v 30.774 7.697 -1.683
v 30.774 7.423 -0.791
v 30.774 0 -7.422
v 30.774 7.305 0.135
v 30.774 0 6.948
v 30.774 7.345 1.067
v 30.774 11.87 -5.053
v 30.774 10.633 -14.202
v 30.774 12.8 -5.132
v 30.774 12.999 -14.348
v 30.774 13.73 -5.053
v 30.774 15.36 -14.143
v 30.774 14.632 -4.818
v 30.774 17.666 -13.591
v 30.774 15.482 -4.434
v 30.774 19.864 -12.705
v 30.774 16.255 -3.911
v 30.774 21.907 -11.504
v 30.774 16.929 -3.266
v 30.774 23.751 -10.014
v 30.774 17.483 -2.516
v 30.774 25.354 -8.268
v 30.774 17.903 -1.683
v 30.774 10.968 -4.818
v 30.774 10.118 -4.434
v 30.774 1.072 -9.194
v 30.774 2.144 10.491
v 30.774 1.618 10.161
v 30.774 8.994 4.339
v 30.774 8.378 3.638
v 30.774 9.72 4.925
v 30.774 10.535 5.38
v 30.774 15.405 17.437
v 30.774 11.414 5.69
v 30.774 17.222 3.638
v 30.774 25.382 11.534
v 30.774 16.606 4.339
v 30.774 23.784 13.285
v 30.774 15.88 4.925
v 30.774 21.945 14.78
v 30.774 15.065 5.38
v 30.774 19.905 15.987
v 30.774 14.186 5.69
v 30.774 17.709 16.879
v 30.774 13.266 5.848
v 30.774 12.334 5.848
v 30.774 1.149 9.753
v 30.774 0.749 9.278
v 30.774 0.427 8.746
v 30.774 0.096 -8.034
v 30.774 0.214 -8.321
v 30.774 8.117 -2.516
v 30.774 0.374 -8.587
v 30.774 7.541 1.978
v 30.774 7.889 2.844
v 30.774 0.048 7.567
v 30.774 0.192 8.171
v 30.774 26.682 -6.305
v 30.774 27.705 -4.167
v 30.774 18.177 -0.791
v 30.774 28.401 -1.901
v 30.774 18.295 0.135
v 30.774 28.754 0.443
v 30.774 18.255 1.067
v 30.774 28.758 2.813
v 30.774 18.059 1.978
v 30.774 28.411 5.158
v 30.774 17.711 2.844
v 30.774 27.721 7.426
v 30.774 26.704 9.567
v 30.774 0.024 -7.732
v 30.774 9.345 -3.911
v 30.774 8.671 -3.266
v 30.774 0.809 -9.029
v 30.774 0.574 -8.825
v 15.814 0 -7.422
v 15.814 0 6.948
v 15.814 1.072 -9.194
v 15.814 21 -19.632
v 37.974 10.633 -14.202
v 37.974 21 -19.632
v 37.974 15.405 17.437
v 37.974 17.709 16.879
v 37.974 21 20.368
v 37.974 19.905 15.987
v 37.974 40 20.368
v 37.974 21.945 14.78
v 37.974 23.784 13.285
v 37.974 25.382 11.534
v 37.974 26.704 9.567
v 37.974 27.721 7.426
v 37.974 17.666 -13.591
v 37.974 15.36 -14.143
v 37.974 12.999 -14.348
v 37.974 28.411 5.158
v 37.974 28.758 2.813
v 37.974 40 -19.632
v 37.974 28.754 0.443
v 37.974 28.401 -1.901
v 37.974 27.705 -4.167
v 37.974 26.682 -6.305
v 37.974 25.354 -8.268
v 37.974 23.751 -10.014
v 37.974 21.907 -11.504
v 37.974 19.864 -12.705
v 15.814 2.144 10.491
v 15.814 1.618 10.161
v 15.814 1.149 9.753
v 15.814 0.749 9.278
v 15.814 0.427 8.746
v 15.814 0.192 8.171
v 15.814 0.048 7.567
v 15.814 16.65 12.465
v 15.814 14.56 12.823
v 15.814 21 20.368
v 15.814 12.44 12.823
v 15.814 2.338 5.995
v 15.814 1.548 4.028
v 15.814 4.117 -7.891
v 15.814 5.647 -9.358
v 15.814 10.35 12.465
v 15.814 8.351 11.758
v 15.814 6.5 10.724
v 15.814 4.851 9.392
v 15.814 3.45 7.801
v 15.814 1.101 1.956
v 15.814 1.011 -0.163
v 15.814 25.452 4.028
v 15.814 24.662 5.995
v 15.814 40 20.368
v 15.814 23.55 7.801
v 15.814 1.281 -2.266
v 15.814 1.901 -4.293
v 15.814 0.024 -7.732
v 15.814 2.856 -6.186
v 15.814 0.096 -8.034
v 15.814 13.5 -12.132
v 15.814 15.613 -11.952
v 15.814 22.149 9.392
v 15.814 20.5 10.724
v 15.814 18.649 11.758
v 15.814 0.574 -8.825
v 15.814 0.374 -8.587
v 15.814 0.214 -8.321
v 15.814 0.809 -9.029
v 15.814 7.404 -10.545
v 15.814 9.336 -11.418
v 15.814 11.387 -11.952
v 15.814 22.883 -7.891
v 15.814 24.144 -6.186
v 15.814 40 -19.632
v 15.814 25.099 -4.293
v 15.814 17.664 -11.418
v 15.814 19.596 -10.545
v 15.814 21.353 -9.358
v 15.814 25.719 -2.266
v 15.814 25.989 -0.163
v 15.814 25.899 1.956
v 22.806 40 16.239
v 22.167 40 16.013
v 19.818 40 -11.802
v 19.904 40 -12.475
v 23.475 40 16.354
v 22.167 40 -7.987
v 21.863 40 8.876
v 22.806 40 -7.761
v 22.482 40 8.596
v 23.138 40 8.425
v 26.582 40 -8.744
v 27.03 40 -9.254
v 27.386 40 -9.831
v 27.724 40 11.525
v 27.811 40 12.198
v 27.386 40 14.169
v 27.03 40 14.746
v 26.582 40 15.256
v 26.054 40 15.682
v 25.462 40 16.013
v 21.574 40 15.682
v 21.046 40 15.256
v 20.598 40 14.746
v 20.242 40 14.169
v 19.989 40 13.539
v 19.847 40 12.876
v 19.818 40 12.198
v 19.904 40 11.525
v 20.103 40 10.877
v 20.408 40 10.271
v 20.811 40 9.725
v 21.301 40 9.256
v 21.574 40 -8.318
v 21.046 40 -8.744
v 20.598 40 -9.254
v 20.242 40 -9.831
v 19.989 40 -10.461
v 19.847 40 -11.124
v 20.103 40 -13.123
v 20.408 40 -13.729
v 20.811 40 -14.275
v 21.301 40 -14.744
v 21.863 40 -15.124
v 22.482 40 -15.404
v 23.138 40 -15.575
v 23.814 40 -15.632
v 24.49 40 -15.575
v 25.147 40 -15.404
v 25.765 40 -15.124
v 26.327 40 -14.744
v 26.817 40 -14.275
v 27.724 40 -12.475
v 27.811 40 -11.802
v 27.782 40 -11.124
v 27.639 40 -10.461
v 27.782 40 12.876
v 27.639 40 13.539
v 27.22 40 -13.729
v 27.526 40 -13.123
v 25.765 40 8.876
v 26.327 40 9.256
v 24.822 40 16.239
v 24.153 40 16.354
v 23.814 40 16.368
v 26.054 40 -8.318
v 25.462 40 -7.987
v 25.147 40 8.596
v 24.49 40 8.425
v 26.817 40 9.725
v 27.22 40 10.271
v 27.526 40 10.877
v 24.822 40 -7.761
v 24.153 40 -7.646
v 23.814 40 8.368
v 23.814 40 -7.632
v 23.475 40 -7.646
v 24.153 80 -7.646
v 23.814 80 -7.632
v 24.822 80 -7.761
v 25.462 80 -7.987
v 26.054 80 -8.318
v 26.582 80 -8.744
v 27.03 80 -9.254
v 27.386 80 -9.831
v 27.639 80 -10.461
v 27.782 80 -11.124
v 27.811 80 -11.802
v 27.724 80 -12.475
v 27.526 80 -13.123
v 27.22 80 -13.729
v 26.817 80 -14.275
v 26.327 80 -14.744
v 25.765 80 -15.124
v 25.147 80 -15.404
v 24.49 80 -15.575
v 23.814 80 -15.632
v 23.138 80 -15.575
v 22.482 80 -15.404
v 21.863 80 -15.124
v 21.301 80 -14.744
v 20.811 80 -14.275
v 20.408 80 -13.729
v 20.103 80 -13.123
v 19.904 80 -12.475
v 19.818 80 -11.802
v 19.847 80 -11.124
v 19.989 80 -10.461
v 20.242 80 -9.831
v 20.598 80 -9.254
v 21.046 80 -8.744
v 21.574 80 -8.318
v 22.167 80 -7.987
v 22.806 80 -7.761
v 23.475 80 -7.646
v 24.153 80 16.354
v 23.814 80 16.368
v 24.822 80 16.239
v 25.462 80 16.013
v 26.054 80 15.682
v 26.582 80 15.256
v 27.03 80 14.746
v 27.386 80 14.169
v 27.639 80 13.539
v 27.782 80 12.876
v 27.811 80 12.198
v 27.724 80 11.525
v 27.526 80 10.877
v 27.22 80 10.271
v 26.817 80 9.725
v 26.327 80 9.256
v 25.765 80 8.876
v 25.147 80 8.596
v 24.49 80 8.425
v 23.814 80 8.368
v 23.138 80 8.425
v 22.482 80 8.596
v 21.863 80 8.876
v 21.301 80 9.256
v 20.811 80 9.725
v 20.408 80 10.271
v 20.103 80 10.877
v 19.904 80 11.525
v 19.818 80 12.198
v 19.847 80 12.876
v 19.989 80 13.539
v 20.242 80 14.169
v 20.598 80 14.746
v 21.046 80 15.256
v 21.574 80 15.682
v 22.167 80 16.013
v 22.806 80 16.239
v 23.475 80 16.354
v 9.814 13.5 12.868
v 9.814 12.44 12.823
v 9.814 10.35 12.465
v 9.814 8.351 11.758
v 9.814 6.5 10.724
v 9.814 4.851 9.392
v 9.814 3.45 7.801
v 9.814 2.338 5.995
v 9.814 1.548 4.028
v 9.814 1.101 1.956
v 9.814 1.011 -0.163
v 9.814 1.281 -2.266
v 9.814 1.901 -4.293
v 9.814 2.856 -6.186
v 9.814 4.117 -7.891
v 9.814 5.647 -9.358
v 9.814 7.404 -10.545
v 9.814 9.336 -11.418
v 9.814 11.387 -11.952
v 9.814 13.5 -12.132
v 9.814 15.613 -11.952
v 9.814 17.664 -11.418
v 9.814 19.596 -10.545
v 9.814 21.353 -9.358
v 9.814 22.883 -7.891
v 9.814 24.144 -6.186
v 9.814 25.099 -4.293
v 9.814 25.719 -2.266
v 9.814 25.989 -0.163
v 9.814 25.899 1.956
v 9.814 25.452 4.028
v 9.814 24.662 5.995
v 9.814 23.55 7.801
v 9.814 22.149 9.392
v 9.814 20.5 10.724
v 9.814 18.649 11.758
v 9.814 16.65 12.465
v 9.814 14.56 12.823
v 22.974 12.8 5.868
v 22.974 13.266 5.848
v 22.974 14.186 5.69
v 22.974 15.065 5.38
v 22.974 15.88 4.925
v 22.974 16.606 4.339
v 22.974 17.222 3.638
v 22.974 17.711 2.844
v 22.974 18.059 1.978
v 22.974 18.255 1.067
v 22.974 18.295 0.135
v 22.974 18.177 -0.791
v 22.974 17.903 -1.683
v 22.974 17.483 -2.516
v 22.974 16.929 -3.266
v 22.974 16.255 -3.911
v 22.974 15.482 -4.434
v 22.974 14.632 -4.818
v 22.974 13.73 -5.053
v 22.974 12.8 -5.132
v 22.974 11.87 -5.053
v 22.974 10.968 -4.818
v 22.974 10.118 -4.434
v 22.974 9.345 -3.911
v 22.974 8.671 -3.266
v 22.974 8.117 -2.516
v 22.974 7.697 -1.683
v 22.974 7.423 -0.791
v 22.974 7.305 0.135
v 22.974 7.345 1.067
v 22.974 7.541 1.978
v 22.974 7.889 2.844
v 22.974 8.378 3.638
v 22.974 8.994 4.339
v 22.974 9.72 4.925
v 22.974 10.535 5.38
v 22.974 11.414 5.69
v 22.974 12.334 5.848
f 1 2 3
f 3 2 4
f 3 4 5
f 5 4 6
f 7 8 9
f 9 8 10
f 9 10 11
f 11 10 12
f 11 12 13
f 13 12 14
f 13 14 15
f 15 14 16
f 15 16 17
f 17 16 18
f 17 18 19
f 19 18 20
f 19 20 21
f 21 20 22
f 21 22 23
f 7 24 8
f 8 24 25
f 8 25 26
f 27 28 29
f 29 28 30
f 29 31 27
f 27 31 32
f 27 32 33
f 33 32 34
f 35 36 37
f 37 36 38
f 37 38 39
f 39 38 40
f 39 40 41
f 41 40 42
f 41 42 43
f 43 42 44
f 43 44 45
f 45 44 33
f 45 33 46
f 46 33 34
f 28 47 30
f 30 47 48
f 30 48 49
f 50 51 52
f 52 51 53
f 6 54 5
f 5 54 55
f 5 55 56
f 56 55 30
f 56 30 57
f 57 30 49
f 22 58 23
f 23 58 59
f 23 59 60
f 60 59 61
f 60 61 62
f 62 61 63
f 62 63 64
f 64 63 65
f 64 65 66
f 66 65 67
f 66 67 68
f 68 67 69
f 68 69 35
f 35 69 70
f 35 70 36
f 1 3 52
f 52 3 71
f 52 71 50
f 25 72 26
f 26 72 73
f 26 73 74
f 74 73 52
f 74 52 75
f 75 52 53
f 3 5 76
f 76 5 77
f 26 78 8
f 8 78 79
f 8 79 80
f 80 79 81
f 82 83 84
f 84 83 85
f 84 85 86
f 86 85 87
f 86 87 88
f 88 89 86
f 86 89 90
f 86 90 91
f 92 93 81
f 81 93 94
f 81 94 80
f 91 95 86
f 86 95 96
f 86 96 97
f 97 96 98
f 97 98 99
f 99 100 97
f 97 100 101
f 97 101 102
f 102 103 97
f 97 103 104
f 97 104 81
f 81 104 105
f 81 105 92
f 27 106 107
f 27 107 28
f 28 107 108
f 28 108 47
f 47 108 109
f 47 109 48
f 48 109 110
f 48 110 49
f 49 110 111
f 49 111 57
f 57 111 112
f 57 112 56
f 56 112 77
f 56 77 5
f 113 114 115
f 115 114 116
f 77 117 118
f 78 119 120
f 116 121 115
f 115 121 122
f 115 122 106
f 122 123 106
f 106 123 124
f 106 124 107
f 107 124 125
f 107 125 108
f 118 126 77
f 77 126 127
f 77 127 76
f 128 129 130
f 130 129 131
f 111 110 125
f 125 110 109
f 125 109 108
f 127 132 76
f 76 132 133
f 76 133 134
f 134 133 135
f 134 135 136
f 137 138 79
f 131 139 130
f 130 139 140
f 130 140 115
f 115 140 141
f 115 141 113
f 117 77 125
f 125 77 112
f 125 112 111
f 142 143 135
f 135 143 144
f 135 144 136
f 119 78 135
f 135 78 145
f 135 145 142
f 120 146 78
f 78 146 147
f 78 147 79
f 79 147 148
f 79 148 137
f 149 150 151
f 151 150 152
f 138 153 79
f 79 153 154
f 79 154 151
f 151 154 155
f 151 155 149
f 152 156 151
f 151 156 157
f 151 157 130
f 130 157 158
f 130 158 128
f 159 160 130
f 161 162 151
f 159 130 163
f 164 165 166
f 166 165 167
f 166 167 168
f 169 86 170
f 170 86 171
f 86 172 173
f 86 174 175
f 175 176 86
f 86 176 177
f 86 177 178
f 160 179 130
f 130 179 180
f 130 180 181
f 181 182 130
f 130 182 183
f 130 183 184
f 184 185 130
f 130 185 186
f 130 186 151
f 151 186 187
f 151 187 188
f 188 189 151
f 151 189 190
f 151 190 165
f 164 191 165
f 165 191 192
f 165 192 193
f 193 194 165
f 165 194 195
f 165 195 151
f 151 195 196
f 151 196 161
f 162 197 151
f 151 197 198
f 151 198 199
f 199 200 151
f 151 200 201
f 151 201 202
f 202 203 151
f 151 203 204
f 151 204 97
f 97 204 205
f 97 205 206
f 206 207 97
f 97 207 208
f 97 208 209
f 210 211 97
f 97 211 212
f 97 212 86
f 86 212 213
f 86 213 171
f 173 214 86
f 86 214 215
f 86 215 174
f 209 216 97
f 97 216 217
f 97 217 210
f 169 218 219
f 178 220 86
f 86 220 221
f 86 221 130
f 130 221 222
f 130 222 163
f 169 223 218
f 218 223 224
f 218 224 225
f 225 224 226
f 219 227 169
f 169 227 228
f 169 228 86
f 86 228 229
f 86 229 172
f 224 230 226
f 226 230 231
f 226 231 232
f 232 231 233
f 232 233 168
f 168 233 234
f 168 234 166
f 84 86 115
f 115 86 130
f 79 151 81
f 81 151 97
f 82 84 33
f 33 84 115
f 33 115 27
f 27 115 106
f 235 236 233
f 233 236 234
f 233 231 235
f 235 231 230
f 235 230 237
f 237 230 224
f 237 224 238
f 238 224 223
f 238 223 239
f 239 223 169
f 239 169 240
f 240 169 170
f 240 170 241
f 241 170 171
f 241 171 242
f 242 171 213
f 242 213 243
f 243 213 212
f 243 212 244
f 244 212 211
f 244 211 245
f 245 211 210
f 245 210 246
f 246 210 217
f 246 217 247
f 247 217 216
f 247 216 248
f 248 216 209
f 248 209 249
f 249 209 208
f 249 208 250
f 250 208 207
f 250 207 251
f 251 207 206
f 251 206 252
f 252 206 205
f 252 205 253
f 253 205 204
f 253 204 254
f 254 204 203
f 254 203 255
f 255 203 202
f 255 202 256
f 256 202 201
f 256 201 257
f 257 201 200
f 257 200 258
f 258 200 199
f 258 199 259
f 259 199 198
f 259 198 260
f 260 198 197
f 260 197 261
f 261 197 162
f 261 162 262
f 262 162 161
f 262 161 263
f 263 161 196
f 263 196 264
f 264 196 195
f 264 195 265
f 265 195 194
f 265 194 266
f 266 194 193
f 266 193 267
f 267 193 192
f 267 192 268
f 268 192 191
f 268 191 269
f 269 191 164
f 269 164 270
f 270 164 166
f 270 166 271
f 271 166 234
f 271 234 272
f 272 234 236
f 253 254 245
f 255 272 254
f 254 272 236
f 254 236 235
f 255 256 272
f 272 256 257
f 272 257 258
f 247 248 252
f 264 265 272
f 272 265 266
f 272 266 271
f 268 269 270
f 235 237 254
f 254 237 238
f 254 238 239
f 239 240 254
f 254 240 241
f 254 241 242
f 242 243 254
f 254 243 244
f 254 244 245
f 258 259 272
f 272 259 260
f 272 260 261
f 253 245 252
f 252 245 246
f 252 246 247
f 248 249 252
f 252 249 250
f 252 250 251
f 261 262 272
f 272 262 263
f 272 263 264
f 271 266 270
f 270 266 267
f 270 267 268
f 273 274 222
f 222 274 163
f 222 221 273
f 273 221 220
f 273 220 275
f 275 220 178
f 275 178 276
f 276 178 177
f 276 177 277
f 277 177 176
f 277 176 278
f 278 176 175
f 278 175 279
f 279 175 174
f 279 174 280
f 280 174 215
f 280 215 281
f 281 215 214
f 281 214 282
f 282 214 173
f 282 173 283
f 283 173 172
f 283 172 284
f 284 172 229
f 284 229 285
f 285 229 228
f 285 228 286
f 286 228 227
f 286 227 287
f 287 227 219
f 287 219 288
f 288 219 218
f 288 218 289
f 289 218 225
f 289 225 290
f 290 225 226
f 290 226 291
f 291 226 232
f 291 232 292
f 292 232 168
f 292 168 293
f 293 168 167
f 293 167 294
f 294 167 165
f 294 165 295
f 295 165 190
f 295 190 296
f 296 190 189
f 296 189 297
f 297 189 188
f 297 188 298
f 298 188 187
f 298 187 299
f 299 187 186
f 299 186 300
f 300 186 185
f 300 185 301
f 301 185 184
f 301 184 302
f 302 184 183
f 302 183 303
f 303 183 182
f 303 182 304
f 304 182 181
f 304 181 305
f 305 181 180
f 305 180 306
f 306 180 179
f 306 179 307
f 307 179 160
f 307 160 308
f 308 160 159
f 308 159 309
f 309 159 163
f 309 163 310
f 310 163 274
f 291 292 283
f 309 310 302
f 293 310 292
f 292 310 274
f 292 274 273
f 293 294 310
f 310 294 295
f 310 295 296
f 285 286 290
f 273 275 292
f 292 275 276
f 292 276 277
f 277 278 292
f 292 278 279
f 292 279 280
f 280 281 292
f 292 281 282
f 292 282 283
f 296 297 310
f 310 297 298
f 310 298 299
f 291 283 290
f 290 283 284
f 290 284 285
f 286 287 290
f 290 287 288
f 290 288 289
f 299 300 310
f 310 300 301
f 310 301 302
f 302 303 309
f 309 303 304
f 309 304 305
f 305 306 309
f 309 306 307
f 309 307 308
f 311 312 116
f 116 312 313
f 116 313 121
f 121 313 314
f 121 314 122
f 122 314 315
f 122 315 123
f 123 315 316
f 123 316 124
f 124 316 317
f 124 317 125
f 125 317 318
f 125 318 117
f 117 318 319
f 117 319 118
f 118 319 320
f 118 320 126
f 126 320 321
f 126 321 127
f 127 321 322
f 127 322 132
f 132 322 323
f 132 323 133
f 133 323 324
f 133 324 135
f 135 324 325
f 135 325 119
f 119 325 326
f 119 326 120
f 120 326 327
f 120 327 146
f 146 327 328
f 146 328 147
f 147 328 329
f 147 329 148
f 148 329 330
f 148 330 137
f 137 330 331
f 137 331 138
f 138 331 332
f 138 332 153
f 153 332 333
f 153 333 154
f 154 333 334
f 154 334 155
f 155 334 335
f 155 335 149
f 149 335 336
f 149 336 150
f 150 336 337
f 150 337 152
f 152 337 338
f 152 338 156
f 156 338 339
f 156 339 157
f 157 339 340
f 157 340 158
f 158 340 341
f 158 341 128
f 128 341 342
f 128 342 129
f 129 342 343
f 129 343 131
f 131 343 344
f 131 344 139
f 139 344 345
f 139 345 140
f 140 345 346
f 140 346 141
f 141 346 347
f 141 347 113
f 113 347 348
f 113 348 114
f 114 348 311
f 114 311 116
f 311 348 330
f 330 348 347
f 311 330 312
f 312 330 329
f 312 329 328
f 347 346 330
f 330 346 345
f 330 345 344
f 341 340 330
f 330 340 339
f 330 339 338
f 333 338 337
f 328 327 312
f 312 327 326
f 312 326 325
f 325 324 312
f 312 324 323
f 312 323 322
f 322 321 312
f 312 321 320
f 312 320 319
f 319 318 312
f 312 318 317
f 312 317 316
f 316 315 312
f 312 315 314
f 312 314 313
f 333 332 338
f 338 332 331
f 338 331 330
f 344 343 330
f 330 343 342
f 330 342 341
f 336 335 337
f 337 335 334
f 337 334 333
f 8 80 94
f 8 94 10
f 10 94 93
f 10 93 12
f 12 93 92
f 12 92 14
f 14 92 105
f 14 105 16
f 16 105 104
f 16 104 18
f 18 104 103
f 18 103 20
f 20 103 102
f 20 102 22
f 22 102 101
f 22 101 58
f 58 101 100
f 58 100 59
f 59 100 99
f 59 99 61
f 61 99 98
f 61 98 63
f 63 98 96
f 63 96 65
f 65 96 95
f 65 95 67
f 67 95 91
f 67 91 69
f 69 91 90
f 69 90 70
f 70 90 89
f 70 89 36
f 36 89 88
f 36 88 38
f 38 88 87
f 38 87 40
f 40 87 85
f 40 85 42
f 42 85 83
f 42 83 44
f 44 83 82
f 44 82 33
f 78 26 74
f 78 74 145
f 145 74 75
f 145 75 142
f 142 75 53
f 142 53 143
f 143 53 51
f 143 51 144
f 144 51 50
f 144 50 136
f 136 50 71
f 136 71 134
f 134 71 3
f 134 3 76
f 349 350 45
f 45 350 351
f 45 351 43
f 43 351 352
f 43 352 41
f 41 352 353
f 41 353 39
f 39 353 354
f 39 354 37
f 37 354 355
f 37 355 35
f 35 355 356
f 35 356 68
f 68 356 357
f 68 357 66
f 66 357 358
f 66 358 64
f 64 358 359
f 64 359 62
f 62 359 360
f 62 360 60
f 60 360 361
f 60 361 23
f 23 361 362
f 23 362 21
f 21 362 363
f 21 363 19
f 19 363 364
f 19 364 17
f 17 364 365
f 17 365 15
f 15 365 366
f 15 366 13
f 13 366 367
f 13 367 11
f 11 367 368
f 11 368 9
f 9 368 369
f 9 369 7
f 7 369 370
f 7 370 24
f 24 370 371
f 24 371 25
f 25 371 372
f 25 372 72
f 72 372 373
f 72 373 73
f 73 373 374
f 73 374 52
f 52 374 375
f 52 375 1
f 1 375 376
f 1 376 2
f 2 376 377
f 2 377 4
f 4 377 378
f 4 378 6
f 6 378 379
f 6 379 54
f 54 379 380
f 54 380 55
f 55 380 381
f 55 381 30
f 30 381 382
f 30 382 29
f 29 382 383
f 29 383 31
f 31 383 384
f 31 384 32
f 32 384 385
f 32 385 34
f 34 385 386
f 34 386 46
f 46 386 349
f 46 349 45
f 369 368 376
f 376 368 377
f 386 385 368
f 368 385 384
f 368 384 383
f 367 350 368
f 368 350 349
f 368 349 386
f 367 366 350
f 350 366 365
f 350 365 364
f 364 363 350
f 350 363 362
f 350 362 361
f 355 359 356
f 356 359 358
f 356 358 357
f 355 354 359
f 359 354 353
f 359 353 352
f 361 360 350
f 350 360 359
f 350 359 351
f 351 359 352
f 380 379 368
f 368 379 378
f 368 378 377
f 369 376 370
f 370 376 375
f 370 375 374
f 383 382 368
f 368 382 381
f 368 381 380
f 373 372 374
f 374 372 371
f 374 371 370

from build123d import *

# Parameters (mm, degrees)
ESQUISSE1_W             = 22.16
ESQUISSE1_H             = 40
BOSS_EXTRU_1_DEPTH      = 40
CHANFREIN1_SIZE         = 11
CHANFREIN1_SIZE2        = 21
CHANFREIN2_SIZE         = 11
CHANFREIN2_SIZE2        = 21
CONG_1_R                = 4
ESQUISSE2_R             = 4
BOSS_EXTRU_2_DEPTH      = 40
ESQUISSE2_3_R           = 4
BOSS_EXTRU_3_DEPTH      = 40
ESQUISSE3_R             = 12.5
BOSS_EXTRU_4_DEPTH      = 6
ESQUISSE4_R             = 16
ENL_V_MAT_EXTRU_1_DEPTH = 7.2
ESQUISSE6_W             = 12.088624029
ESQUISSE6_H             = 7.650078289
ENL_V_MAT_EXTRU_2_DEPTH = 86.171439898
CONG_2_R                = 2
ESQUISSE8_R             = 5.5
ENL_V_MAT_EXTRU_5_DEPTH = 15


with BuildPart() as part:
    # Esquisse1 → Boss.-Extru.1 (new body)
    with BuildSketch(Plane(origin=(0, 0, 0), x_dir=(1, 0, 0), z_dir=(0, 1, 0))):
        with Locations((26.894106866, -0.367930046)):
            Rectangle(ESQUISSE1_W, ESQUISSE1_H)
    extrude(amount=BOSS_EXTRU_1_DEPTH)

    # Chanfrein1
    chanfrein1_edges = [part.edges().sort_by_distance(p)[0] for p in [
        (26.894106866, 0, 20.367930046),
    ]]
    chanfrein1_side = [part.faces().sort_by_distance(p)[0] for p in [
        (26.894106866, 0, 0.367930046),
    ]]
    chamfer(chanfrein1_edges, length=CHANFREIN1_SIZE, length2=CHANFREIN1_SIZE2, reference=chanfrein1_side[0])

    # Chanfrein2
    chanfrein2_edges = [part.edges().sort_by_distance(p)[0] for p in [
        (26.894106866, 0, -19.632069954),
    ]]
    chanfrein2_side = [part.faces().sort_by_distance(p)[0] for p in [
        (26.894106866, 0, -5.132069954),
    ]]
    chamfer(chanfrein2_edges, length=CHANFREIN2_SIZE, length2=CHANFREIN2_SIZE2, reference=chanfrein2_side[0])

    # Congé1
    cong_1_edges = [part.edges().sort_by_distance(p)[0] for p in [
        (26.894106866, 0, 9.367930046),
    ]]
    fillet(cong_1_edges, radius=CONG_1_R)

    # Esquisse2 → Boss.-Extru.2 (add)
    with BuildSketch(Plane(origin=(0, 40, 0), x_dir=(1, 0, 0), z_dir=(0, 1, 0))):
        with Locations((23.814106866, 11.632069954)):
            Circle(ESQUISSE2_R)
    extrude(amount=BOSS_EXTRU_2_DEPTH)

    # Esquisse2<3> → Boss.-Extru.3 (add)
    with BuildSketch(Plane(origin=(0, 40, 0), x_dir=(1, 0, 0), z_dir=(0, 1, 0))):
        with Locations((23.814106866, -12.367930046)):
            Circle(ESQUISSE2_3_R)
        with Locations((23.814106866, 11.632069954)):
            Circle(ESQUISSE2_3_R)
    extrude(amount=BOSS_EXTRU_3_DEPTH)

    # Esquisse3 → Boss.-Extru.4 (add)
    with BuildSketch(Plane.ZY.offset(-15.814106866)):
        with Locations((0.367930046, 13.5)):
            Circle(ESQUISSE3_R)
    extrude(amount=BOSS_EXTRU_4_DEPTH)

    # Esquisse4 → Enlèv. mat.-Extru.1 (cut)
    with BuildSketch(Plane(origin=(37.974106866, 0, 0), x_dir=(0, 0, -1), z_dir=(1, 0, 0))):
        with Locations((-1.650800507, 12.8)):
            Circle(ESQUISSE4_R)
    extrude(amount=-ENL_V_MAT_EXTRU_1_DEPTH, mode=Mode.SUBTRACT)

    # Esquisse6 → Enlèv. mat.-Extru.2 (cut, through all)
    with BuildSketch(Plane(origin=(30.774106866, 0, 0), x_dir=(0, 0, -1), z_dir=(1, 0, 0))):
        with Locations((6.871590707, 0.920255373)):
            Rectangle(ESQUISSE6_W, ESQUISSE6_H)
    extrude(amount=ENL_V_MAT_EXTRU_2_DEPTH, mode=Mode.SUBTRACT)

    # Congé2
    cong_2_edges = [part.edges().sort_by_distance(p)[0] for p in [
        (23.294106866, 0, -8.632069954),
    ]]
    fillet(cong_2_edges, radius=CONG_2_R)

    # Esquisse8 → Enlèv. mat.-Extru.5 (cut)
    with BuildSketch(Plane(origin=(37.974106866, 0, -37.974106866), x_dir=(0, 0, 1), z_dir=(-1, 0, 0))):
        with Locations((38.342036913, 12.8)):
            Circle(ESQUISSE8_R)
    extrude(amount=ENL_V_MAT_EXTRU_5_DEPTH, mode=Mode.SUBTRACT)


solid = part.part
